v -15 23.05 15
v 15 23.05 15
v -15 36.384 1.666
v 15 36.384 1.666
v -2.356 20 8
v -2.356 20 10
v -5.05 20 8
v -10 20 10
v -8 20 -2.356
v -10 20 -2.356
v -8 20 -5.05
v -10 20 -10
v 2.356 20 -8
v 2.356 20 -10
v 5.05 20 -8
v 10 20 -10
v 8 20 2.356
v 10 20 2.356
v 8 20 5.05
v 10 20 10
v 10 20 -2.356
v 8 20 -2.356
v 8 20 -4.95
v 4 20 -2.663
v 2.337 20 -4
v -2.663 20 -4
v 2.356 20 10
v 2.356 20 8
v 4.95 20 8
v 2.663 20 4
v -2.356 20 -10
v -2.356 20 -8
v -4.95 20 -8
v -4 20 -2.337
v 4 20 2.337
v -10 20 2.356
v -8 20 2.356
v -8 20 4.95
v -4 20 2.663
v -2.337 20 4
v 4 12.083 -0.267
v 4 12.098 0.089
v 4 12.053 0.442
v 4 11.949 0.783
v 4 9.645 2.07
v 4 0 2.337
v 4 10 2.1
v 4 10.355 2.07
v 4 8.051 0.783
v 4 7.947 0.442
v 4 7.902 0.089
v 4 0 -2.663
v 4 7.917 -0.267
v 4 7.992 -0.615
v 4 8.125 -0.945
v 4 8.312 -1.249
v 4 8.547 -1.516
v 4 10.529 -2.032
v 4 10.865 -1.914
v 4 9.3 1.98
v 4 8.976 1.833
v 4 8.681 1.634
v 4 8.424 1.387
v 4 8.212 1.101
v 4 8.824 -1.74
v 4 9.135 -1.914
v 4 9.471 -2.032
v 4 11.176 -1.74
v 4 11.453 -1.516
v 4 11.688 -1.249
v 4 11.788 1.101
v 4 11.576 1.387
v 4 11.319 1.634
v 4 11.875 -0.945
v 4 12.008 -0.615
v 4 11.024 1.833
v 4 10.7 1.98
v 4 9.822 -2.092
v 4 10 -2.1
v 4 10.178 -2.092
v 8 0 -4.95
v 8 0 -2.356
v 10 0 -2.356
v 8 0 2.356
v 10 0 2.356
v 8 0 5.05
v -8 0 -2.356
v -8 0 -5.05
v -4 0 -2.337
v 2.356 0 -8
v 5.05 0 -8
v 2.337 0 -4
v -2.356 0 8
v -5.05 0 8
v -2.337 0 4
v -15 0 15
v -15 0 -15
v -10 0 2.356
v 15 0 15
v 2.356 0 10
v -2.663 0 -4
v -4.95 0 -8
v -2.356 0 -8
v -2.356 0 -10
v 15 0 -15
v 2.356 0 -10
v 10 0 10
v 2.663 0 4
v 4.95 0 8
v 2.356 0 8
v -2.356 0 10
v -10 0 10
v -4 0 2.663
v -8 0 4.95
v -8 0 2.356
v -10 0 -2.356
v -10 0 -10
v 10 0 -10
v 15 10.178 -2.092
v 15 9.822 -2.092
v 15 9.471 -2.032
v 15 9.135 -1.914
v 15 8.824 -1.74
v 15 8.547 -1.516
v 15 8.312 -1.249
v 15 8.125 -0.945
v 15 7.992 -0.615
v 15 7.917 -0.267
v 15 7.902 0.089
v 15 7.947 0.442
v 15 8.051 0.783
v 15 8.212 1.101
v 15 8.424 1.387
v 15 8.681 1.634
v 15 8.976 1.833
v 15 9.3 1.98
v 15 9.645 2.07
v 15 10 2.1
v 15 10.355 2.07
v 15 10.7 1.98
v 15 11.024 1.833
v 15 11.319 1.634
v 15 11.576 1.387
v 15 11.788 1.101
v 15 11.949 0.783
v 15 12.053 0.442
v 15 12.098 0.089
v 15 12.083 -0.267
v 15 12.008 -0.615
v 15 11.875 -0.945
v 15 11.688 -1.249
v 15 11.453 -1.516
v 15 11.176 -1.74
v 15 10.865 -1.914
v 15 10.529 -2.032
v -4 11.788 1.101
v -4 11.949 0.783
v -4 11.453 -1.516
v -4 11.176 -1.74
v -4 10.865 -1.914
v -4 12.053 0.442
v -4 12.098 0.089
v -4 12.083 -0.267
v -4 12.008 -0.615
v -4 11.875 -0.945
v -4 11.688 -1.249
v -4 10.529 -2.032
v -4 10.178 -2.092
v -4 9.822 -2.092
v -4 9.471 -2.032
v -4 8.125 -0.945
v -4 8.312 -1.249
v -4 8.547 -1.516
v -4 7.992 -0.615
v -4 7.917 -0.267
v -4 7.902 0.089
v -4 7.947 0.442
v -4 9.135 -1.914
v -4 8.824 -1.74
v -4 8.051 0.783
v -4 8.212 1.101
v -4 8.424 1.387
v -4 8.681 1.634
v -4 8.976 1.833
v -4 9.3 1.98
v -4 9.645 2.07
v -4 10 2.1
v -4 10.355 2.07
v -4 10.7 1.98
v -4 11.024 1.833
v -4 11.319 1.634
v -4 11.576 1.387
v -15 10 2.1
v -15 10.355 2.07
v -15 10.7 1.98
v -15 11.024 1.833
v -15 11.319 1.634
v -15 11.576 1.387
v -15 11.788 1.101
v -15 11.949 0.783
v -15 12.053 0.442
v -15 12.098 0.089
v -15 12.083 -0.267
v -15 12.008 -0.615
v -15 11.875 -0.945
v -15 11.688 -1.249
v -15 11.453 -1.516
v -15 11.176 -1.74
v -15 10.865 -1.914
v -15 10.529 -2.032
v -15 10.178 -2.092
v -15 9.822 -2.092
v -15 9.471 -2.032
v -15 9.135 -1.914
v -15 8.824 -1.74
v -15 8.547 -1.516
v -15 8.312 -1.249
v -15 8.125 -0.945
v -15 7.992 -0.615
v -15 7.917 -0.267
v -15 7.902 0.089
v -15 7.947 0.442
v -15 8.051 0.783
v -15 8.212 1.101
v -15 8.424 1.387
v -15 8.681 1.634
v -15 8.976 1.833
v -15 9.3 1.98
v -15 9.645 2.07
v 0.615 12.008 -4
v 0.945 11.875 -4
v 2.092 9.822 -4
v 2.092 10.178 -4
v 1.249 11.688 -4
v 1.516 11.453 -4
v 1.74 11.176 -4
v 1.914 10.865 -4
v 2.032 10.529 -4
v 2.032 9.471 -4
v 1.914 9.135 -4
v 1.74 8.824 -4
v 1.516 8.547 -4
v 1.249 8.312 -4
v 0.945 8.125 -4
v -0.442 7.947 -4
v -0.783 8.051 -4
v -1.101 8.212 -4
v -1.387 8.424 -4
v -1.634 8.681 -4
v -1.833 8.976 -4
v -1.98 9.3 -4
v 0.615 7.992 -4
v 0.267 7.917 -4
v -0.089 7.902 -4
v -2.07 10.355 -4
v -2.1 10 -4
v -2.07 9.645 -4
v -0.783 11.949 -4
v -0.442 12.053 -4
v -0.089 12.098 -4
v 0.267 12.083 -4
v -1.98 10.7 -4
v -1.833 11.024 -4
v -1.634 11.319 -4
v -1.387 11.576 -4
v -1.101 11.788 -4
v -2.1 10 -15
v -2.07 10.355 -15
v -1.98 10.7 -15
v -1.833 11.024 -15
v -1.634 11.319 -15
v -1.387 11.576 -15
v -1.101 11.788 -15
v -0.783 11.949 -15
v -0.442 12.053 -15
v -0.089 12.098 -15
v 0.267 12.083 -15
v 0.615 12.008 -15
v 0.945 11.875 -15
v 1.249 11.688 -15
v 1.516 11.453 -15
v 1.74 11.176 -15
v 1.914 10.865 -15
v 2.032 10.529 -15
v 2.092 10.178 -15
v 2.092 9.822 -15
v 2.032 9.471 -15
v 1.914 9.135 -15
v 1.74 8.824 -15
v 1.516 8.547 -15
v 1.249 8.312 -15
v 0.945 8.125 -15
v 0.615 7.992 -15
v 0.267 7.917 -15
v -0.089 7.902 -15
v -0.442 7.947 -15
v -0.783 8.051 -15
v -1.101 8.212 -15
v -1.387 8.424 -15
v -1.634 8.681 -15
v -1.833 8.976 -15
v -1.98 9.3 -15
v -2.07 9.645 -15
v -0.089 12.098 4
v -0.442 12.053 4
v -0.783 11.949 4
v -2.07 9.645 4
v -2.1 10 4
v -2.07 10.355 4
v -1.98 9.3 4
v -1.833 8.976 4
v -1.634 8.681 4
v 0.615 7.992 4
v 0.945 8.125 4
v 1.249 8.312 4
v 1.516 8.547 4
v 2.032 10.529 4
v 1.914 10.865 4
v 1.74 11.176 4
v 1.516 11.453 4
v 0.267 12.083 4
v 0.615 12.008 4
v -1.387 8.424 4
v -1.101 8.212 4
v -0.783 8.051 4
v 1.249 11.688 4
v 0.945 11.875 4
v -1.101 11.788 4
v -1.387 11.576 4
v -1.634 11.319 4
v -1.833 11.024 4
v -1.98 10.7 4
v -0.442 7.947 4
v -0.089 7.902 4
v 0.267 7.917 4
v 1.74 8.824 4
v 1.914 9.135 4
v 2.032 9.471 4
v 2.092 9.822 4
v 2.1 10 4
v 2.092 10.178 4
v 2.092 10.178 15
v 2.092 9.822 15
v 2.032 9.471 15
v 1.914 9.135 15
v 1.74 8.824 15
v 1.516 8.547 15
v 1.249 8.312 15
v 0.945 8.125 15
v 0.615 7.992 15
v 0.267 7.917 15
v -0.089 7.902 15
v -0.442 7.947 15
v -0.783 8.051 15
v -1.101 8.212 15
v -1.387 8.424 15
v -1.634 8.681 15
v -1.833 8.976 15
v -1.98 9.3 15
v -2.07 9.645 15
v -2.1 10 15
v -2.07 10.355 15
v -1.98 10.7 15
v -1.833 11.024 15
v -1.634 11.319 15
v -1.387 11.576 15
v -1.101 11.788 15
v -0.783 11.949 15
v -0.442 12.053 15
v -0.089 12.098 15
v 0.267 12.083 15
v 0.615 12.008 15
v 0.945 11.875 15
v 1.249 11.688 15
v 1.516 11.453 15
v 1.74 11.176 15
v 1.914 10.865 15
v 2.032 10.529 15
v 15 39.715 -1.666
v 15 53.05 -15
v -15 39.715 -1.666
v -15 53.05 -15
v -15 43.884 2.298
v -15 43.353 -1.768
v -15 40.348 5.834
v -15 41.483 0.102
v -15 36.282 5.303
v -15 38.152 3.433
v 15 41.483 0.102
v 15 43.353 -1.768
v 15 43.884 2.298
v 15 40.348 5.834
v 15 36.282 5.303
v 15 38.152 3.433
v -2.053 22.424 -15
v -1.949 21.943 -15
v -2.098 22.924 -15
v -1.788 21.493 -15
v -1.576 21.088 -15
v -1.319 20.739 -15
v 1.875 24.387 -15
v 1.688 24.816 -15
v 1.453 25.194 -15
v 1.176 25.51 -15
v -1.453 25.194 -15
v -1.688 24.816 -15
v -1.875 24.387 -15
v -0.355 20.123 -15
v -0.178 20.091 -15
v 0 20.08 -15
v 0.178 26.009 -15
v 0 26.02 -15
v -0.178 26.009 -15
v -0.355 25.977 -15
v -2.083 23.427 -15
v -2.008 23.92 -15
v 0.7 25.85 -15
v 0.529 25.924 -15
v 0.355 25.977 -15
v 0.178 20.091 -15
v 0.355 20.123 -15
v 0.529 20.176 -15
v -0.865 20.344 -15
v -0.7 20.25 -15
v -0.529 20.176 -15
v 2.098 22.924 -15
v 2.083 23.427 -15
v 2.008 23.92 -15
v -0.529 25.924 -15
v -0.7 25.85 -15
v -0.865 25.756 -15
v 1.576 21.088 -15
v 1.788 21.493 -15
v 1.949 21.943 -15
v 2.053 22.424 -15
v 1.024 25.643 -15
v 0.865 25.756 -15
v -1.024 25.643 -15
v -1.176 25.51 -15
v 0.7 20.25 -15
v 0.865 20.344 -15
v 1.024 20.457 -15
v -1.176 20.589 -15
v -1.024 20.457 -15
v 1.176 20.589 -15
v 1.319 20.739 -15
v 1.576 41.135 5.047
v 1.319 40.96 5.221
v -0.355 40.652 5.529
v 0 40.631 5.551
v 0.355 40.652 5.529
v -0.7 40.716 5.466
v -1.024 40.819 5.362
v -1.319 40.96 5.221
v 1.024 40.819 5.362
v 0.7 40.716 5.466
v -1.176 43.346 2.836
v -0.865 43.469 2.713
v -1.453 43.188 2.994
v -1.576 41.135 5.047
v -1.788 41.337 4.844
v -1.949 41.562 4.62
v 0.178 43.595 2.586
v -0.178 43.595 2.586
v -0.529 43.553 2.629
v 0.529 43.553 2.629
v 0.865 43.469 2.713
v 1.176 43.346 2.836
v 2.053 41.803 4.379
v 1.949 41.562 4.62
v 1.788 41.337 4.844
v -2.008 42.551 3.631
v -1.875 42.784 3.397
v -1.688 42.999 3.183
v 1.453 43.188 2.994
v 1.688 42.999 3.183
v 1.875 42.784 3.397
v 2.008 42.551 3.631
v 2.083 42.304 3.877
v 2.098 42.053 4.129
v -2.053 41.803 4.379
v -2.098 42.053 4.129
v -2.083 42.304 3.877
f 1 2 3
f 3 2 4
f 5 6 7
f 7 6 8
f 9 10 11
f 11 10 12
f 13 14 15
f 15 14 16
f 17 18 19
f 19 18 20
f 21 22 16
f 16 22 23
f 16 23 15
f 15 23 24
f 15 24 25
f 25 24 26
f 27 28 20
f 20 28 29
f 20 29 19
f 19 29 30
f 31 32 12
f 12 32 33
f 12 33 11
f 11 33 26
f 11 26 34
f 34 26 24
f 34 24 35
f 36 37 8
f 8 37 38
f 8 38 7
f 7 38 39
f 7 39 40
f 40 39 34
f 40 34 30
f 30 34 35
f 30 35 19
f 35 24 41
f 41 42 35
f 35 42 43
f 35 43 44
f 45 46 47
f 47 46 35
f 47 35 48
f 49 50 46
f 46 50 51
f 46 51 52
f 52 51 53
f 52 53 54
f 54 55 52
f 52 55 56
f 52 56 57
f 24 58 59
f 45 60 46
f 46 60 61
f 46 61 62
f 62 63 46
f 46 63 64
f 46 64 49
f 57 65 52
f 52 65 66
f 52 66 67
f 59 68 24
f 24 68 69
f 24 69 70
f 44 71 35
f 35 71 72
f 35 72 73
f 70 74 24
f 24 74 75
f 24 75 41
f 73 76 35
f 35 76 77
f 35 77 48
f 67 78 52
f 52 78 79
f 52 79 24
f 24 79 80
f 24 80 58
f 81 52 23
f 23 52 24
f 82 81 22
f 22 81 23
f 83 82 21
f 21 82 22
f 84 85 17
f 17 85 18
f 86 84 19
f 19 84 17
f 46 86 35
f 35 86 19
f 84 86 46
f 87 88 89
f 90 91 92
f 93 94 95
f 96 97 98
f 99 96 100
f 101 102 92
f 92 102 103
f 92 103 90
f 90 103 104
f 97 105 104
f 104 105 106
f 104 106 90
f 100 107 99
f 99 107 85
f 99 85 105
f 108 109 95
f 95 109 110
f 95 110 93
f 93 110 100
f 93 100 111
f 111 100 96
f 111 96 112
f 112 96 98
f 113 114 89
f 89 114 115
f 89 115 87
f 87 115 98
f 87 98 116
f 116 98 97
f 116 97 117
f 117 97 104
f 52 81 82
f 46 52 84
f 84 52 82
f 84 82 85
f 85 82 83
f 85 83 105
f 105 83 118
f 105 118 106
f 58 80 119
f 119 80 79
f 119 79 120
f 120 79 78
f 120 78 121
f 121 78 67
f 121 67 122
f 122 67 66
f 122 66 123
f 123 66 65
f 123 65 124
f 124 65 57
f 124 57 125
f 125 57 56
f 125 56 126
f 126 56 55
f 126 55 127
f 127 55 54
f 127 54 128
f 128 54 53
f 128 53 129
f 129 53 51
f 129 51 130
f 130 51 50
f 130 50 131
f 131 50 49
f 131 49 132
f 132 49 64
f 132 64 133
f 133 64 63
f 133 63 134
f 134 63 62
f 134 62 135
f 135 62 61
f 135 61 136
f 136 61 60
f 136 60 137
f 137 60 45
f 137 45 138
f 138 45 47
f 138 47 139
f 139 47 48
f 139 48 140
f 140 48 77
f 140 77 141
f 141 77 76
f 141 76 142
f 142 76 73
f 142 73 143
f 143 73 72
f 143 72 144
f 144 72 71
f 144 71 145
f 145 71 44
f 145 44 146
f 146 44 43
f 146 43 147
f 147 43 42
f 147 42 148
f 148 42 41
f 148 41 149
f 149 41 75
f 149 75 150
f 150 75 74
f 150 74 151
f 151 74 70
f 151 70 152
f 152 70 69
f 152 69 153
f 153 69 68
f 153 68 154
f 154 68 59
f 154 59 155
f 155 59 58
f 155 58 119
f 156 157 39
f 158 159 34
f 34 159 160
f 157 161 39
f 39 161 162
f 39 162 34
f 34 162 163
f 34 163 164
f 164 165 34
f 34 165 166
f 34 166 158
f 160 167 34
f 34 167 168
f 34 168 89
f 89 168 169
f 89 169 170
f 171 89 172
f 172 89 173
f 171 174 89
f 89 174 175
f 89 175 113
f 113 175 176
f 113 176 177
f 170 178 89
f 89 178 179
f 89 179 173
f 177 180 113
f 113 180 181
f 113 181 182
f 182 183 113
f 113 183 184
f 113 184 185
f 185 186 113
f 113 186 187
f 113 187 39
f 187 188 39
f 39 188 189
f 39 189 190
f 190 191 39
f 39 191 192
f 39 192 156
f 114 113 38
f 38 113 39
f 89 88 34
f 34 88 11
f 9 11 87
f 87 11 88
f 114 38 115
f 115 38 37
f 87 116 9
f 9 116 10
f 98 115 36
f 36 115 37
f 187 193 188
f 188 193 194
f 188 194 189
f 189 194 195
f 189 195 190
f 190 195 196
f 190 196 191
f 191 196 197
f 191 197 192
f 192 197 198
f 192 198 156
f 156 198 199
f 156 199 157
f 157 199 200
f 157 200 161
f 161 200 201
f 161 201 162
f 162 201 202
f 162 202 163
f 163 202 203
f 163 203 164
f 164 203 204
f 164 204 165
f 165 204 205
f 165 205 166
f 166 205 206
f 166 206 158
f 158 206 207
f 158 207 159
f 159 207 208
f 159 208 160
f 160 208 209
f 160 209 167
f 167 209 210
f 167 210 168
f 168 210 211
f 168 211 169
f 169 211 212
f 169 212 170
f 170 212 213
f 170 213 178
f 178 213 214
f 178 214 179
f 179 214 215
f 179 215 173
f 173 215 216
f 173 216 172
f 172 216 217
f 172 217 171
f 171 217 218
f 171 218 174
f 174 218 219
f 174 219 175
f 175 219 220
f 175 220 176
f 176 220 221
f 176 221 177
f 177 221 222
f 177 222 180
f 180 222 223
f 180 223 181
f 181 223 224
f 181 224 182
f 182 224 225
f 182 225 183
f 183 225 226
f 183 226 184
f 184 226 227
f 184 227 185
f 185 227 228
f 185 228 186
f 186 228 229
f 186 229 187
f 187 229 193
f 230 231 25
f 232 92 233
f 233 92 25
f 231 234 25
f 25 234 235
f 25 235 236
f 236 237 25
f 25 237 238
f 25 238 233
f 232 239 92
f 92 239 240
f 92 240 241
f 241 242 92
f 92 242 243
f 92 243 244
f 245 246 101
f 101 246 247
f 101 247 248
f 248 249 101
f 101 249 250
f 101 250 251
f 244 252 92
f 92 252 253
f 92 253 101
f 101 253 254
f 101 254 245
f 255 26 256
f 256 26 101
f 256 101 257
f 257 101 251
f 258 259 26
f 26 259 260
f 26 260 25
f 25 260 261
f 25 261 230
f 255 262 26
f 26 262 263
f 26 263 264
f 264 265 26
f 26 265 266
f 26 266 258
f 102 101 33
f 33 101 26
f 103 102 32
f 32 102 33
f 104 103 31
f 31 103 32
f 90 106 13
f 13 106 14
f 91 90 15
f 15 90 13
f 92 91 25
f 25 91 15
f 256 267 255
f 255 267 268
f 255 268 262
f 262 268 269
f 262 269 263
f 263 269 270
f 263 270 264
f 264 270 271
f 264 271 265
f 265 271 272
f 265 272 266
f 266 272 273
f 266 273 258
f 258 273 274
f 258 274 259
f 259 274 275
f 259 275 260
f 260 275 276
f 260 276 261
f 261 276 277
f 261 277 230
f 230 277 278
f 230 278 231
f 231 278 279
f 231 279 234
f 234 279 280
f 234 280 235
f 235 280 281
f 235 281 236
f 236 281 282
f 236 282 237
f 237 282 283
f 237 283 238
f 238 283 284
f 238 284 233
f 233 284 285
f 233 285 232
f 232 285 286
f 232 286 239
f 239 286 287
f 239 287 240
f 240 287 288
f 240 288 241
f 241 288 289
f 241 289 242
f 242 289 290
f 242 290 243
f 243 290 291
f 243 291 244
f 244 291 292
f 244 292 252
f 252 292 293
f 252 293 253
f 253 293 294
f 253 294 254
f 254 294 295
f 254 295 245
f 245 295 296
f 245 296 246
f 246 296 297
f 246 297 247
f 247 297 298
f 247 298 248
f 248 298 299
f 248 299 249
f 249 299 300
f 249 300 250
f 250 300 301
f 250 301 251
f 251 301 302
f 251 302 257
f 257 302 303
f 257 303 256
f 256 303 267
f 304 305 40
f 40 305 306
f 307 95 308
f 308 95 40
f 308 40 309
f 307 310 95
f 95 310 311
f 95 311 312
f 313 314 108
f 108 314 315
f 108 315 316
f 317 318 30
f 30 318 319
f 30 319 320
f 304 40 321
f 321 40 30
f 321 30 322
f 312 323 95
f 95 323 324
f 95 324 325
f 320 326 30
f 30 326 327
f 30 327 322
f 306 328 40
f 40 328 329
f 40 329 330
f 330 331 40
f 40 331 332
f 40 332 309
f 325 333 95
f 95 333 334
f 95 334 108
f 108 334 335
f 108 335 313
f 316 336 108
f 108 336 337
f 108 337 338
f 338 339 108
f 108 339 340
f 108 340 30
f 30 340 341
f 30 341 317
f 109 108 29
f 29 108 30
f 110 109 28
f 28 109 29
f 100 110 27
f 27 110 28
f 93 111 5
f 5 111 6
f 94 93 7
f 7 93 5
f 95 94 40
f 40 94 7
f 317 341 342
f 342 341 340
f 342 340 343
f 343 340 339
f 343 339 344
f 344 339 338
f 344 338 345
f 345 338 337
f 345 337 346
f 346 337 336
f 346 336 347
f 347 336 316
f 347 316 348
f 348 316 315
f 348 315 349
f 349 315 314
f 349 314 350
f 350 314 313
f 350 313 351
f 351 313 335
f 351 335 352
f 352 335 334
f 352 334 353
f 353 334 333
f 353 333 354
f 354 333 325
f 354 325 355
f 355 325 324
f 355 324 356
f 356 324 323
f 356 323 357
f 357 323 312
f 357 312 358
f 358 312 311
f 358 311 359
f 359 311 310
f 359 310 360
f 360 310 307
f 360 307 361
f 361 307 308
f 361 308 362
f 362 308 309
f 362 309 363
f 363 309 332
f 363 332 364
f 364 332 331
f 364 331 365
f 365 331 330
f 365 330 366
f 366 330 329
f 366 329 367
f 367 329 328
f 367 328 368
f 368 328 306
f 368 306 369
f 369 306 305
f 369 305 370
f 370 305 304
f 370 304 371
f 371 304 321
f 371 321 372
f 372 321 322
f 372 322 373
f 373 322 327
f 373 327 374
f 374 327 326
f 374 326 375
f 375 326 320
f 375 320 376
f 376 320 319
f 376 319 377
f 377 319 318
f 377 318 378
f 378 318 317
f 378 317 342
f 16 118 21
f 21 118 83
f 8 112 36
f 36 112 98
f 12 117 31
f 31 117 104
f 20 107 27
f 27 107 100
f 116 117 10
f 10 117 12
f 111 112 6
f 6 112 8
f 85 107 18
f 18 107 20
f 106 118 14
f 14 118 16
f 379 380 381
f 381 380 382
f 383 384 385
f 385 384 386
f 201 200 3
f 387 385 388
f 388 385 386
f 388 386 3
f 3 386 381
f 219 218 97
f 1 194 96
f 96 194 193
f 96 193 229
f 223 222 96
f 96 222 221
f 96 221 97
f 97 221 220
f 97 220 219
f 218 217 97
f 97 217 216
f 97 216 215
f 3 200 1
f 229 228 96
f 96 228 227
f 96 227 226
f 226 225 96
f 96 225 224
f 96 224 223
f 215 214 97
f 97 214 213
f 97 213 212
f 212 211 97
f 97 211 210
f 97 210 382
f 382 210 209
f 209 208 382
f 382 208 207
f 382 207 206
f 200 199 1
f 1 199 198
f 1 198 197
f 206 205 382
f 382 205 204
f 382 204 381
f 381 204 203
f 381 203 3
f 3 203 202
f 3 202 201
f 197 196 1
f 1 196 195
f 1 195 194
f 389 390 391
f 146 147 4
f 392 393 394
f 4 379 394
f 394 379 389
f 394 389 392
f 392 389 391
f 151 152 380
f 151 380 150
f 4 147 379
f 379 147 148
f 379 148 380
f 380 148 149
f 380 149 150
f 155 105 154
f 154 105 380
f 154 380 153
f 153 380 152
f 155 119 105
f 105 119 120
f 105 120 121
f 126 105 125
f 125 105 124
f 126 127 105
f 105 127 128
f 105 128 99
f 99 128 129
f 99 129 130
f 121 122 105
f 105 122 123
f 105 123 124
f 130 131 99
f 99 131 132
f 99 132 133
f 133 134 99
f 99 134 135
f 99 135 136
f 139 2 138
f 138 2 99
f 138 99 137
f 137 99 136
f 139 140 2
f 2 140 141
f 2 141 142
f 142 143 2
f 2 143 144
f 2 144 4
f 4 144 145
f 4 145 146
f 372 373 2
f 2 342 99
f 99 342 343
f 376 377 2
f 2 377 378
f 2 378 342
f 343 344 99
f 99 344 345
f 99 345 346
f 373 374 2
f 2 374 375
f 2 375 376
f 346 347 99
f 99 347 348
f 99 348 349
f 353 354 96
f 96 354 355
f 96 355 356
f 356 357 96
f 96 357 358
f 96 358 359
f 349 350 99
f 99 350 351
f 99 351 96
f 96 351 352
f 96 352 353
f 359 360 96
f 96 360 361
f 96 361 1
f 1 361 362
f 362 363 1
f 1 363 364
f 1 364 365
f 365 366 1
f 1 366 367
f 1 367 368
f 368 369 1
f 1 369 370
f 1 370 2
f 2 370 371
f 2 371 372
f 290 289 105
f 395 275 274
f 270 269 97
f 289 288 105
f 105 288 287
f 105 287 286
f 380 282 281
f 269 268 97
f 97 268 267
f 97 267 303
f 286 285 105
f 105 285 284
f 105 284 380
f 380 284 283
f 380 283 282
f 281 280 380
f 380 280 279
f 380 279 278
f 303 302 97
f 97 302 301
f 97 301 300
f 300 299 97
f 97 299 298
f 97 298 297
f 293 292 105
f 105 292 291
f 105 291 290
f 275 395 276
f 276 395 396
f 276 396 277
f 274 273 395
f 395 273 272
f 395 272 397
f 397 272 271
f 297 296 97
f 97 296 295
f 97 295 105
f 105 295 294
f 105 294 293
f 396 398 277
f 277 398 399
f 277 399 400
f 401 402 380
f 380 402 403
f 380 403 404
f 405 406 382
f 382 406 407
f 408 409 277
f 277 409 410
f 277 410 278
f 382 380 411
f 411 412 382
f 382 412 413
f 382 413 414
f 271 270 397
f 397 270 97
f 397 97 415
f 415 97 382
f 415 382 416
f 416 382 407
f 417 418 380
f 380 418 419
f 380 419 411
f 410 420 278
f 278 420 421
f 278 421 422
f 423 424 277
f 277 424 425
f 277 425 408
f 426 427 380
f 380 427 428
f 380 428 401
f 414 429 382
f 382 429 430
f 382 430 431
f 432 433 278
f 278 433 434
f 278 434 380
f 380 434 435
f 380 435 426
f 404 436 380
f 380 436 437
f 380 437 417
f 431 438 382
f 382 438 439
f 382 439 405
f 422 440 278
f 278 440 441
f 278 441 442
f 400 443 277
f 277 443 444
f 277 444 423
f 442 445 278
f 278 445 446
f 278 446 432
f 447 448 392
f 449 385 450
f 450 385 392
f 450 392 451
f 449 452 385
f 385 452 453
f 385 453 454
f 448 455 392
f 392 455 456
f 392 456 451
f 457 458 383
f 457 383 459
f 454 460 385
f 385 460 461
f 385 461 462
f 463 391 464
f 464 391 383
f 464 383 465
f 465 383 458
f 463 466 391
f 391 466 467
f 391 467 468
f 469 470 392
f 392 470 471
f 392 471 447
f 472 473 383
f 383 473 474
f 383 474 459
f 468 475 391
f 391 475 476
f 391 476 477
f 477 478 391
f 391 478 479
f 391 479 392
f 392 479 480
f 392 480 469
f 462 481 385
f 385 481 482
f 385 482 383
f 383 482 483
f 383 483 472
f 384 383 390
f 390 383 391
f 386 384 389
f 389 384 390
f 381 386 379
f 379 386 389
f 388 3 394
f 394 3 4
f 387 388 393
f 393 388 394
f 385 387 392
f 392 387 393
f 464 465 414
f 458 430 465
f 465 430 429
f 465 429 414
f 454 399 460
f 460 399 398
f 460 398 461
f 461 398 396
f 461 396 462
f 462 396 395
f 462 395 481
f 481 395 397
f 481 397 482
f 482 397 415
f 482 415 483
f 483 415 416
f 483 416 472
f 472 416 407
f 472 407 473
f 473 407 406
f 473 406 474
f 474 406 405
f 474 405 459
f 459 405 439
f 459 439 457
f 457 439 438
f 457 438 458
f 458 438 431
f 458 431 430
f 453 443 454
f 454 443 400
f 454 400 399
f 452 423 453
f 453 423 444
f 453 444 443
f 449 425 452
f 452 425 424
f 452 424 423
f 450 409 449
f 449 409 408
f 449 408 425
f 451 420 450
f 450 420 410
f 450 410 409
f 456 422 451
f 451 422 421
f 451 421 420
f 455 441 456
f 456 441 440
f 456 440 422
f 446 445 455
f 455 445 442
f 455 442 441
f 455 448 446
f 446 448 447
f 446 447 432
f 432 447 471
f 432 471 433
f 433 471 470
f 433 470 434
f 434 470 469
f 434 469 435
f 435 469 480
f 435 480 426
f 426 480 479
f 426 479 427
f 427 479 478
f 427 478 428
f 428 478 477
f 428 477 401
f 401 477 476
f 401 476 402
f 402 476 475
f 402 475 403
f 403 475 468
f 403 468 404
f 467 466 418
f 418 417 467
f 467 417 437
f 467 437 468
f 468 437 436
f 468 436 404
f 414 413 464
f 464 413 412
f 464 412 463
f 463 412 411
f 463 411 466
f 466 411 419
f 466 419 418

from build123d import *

# Parameters (mm, degrees)
SKETCH1_W           = 30
SKETCH1_H           = 30
SKETCH1_W_2         = 20
SKETCH1_H_2         = 20
BOSS_EXTRUDE1_DEPTH = 20
SKETCH2_W           = 4.711017494
SKETCH2_H           = 2
SKETCH2_W_2         = 2
SKETCH2_H_2         = 4.711017494
BOSS_EXTRUDE2_DEPTH = 20
SKETCH3_R           = 2.1
CUT_EXTRUDE1_DEPTH  = 31
SKETCH4_R           = 2.1
CUT_EXTRUDE2_DEPTH  = 31
BOSS_EXTRUDE3_DEPTH = 30
SKETCH8_W           = 4.711017494
SKETCH8_H           = 2.5
BOSS_EXTRUDE4_DEPTH = 30
SKETCH10_R          = 2.1
CUT_EXTRUDE4_DEPTH  = 44.261940705


with BuildPart() as part:
    # Sketch1 → Boss-Extrude1 (new body)
    with BuildSketch(Plane(origin=(0, 0, 0), x_dir=(1, 0, 0), z_dir=(0, 1, 0))):
        Rectangle(SKETCH1_W, SKETCH1_H)
        Rectangle(SKETCH1_W_2, SKETCH1_H_2, mode=Mode.SUBTRACT)
    extrude(amount=BOSS_EXTRUDE1_DEPTH)


with BuildPart() as body_2:
    # Sketch2 → Boss-Extrude2 (new body)
    with BuildSketch(Plane(origin=(0, 20, 0), x_dir=(1, 0, 0), z_dir=(0, 1, 0))):
        Polygon((2.336539675, 4), (-2.663460325, 4), (-4.950152781, 8), (5.049847219, 8), align=None)
        with Locations((0, 9)):
            Rectangle(SKETCH2_W, SKETCH2_H)
        Polygon((-4, 2.336539675), (-4, -2.663460325), (-8, -4.950152781), (-8, 5.049847219), align=None)
        Polygon((-2.336539675, -4), (2.663460325, -4), (4.950152781, -8), (-5.049847219, -8), align=None)
        with Locations((0, -9)):
            Rectangle(SKETCH2_W, SKETCH2_H)
        Polygon((4, 2.663460325), (4, -2.336539675), (8, -5.049847219), (8, -2.355508747), (8, 2.355508747), (8, 4.950152781), align=None)
        with Locations((9, 0)):
            Rectangle(SKETCH2_W_2, SKETCH2_H_2)
        with Locations((-9, 0)):
            Rectangle(SKETCH2_W_2, SKETCH2_H_2)
    extrude(amount=-BOSS_EXTRUDE2_DEPTH)


with BuildPart() as cut_extrude1_tool:
    # Sketch3 → Cut-Extrude1 (new body, through all)
    with BuildSketch(Plane.ZY.offset(15)):
        with Locations((0, 10)):
            Circle(SKETCH3_R)
    extrude(amount=-CUT_EXTRUDE1_DEPTH)


with BuildPart() as part_1:
    add(part.part)

    # Cut-Extrude1: cut by cut_extrude1_tool
    add(cut_extrude1_tool.part, mode=Mode.SUBTRACT)


with BuildPart() as body_2_1:
    add(body_2.part)

    # Cut-Extrude1: cut by cut_extrude1_tool
    add(cut_extrude1_tool.part, mode=Mode.SUBTRACT)


with BuildPart() as cut_extrude2_tool:
    # Sketch4 → Cut-Extrude2 (new body, through all)
    with BuildSketch(Plane(origin=(0, 0, -15), x_dir=(-1, 0, 0), z_dir=(0, 0, -1))):
        with Locations((0, 10)):
            Circle(SKETCH4_R)
    extrude(amount=-CUT_EXTRUDE2_DEPTH)


with BuildPart() as part_2:
    add(part_1.part)

    # Cut-Extrude2: cut by cut_extrude2_tool
    add(cut_extrude2_tool.part, mode=Mode.SUBTRACT)



with BuildPart() as body_2_2:
    add(body_2_1.part)

    # Cut-Extrude2: cut by cut_extrude2_tool
    add(cut_extrude2_tool.part, mode=Mode.SUBTRACT)


with BuildPart() as part_3:
    add(part_2.part)

    add(body_2_2.part)  # Boss-Extrude3 merges body 2
    # Sketch5 → Boss-Extrude3 (add)
    with BuildSketch(Plane(origin=(15, 0, 0), x_dir=(0, 0, -1), z_dir=(1, 0, 0))):
        Polygon((15, 53.049895295), (15, 50), (-15, 20), (-15, 23.049895295), align=None)
        Polygon((15, 50), (-15, 20), (15, 20), align=None)
    extrude(amount=-BOSS_EXTRUDE3_DEPTH)

    # Sketch8 → Boss-Extrude4 (add)
    with BuildSketch(Plane(origin=(15, 0, 0), x_dir=(0, 0.707106781, -0.707106781), z_dir=(1, 0, 0))):
        Polygon((29.405338987, 32.655338987), (24.405338987, 32.655338987), (21.905338989, 29.405338987), (24.54983024, 29.405338987), (29.260847734, 29.405338987), (31.905338989, 29.405338987), align=None)
        with Locations((26.905338987, 28.155338987)):
            Rectangle(SKETCH8_W, SKETCH8_H)
    extrude(amount=-BOSS_EXTRUDE4_DEPTH)

    # Sketch10 → Cut-Extrude4 (cut, through all)
    with BuildSketch(Plane(origin=(0, 23.090811639, 23.090811639), x_dir=(1, 0, 0), z_dir=(0, 0.707106781, 0.707106781))):
        with Locations((0, 26.905338987)):
            Circle(SKETCH10_R)
    extrude(amount=-CUT_EXTRUDE4_DEPTH, mode=Mode.SUBTRACT)


solid = part_3.part
